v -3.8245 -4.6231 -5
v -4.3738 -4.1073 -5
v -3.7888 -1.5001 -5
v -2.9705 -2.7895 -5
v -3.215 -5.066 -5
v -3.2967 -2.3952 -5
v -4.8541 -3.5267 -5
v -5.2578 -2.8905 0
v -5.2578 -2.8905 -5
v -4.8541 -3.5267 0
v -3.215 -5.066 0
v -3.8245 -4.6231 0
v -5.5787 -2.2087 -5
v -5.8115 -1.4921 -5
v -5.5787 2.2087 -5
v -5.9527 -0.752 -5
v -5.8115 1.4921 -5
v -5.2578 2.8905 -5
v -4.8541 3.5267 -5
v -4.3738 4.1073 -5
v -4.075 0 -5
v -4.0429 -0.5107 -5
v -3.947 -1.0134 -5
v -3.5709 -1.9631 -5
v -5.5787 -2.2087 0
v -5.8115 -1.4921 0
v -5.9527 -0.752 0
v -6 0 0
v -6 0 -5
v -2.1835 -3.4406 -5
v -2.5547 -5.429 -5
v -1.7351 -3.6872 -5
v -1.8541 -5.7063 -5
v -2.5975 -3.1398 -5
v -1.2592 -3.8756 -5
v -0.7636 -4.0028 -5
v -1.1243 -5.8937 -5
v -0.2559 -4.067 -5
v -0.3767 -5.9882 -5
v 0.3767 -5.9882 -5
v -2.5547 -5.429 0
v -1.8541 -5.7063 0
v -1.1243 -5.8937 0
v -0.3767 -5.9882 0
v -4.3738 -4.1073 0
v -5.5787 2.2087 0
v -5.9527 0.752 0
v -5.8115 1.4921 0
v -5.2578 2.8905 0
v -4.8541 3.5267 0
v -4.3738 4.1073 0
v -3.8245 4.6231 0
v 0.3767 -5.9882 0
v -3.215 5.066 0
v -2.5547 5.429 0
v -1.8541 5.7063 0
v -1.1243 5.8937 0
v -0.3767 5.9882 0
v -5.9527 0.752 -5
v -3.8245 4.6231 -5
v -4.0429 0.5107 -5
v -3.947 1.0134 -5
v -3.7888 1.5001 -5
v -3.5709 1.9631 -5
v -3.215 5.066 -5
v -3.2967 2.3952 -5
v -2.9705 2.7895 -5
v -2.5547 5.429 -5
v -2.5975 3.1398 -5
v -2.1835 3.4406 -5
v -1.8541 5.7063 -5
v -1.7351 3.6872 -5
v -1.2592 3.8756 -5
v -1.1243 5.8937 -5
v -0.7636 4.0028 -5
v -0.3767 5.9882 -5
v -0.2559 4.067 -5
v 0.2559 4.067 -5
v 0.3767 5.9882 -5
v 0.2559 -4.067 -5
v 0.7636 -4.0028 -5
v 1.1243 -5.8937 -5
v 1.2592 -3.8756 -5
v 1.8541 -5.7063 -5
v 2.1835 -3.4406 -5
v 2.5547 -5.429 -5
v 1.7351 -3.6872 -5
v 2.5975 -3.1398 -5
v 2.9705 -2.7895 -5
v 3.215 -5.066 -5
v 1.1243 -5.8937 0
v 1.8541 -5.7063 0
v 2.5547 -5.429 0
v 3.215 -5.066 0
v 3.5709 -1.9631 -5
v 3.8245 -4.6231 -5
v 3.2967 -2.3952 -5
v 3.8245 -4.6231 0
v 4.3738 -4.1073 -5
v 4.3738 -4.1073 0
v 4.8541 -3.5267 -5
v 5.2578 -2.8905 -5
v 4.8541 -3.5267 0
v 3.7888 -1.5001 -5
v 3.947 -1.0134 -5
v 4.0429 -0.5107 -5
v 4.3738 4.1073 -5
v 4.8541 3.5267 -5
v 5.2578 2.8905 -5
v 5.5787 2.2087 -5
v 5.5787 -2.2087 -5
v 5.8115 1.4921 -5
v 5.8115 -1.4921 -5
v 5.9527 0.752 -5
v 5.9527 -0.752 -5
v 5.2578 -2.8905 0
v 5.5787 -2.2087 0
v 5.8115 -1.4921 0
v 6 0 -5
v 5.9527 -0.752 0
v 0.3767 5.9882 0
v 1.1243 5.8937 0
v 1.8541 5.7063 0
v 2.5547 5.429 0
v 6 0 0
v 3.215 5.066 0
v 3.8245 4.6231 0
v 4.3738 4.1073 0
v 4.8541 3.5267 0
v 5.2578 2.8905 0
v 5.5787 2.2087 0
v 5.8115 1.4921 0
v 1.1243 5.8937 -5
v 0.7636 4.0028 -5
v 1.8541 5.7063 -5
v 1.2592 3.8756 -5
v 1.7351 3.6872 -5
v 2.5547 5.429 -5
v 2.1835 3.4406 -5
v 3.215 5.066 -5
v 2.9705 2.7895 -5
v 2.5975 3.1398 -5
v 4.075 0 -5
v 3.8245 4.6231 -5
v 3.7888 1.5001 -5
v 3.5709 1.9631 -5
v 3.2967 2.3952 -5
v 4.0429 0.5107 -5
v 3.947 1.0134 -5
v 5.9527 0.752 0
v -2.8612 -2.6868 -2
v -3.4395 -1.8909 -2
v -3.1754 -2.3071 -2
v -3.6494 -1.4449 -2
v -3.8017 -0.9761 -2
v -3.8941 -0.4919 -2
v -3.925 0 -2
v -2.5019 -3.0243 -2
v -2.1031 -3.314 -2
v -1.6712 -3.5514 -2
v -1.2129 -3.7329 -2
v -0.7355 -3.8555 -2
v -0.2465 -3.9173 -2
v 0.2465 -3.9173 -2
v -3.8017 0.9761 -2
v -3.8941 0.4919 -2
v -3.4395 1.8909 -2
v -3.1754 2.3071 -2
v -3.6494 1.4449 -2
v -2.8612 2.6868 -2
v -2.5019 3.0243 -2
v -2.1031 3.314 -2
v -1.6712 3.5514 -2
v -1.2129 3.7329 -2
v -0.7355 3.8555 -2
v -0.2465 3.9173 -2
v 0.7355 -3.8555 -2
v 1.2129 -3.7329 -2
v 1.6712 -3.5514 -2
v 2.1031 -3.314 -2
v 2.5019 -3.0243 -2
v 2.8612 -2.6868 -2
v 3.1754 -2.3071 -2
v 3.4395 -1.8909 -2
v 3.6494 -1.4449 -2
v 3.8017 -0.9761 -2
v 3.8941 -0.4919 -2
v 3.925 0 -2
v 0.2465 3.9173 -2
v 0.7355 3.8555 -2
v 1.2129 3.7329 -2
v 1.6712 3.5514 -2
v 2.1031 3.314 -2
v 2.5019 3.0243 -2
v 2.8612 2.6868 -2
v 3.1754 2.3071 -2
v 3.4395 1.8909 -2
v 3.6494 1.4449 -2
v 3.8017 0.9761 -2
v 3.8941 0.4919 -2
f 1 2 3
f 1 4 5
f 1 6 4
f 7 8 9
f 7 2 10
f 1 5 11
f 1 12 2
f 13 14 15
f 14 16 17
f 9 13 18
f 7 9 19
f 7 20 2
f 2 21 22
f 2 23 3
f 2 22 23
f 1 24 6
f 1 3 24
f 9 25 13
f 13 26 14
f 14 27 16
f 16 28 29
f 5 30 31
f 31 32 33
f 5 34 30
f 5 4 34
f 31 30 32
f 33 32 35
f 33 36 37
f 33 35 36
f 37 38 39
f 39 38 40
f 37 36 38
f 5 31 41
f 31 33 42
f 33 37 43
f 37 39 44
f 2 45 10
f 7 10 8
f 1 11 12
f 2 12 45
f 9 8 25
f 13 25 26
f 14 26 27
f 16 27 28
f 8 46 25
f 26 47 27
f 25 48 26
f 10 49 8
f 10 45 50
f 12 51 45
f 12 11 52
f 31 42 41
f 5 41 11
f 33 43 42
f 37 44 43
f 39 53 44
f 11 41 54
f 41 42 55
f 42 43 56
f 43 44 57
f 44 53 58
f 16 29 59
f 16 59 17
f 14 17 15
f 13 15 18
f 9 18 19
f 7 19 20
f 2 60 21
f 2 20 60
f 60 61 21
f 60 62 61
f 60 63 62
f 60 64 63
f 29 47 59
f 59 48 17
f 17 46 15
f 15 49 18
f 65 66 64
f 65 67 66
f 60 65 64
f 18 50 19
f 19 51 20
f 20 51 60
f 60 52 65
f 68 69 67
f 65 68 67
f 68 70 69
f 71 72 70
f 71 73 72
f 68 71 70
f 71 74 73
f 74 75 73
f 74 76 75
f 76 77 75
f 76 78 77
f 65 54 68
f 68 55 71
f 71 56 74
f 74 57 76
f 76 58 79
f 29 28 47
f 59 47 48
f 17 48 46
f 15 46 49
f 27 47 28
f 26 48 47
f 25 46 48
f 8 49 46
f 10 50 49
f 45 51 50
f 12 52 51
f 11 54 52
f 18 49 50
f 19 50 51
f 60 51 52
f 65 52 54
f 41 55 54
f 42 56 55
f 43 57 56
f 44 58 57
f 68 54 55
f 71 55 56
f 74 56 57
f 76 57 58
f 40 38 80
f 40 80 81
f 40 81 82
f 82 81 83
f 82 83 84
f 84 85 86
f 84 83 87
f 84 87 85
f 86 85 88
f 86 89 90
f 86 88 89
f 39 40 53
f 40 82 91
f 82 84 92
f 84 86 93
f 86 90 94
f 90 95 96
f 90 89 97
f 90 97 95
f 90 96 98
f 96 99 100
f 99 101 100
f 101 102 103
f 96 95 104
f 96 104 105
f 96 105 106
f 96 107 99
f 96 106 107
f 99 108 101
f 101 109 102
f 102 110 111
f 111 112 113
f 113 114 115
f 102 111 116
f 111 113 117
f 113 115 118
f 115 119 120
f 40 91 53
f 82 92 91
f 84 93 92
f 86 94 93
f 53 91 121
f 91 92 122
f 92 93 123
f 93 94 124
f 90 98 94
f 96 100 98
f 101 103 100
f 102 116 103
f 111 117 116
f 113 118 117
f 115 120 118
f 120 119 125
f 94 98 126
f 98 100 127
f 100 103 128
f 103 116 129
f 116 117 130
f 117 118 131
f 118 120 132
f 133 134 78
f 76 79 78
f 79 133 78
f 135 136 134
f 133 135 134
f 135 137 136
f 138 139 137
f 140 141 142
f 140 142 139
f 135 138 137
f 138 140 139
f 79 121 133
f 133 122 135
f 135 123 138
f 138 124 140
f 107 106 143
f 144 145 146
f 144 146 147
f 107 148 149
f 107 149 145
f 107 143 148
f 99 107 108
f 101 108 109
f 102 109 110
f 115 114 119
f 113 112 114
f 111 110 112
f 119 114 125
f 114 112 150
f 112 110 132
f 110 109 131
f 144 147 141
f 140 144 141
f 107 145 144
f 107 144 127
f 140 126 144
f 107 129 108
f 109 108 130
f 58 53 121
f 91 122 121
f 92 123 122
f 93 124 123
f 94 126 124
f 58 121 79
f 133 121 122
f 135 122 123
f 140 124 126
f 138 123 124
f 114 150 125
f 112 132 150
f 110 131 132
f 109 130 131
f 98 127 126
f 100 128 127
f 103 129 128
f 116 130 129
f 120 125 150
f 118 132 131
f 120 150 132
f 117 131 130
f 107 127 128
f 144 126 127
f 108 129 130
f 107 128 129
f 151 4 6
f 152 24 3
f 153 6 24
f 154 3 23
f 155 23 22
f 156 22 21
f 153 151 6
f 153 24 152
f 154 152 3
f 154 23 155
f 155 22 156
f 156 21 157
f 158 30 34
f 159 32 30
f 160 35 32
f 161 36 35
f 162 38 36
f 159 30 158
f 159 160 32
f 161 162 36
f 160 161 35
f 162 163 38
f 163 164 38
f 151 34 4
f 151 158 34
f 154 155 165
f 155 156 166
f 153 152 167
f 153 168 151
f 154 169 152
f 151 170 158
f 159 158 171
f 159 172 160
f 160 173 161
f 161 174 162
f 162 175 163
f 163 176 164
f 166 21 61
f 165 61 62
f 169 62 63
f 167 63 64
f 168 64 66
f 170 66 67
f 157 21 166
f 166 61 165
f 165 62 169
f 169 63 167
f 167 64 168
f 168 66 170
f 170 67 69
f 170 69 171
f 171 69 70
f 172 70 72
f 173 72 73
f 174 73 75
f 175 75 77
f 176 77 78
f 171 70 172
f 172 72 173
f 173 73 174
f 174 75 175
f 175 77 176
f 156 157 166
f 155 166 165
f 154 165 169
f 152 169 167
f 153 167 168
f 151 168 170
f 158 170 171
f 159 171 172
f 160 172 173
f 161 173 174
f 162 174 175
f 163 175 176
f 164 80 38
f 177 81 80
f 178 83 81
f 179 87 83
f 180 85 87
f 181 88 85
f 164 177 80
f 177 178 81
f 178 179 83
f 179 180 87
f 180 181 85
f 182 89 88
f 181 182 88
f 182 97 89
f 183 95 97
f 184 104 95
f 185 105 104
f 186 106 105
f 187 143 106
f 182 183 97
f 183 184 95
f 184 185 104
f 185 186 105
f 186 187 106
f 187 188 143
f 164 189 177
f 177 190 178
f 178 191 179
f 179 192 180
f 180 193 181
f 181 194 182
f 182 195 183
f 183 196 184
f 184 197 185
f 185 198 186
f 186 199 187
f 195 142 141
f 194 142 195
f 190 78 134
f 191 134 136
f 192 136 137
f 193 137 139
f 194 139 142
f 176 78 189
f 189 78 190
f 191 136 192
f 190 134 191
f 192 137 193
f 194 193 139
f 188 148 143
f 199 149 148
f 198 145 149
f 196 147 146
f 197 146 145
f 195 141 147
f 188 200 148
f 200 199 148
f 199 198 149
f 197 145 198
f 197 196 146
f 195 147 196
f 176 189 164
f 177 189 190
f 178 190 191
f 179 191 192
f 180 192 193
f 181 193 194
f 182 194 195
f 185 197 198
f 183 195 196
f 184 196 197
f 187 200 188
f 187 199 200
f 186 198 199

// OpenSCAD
$fn = 50;

difference() {
	union() {
		translate(v = [0, 0, -5.0]) {
			cylinder(h = 5, r = 6.0);
		}
	}
	union() {
		#translate(v = [0, 0, -5.0]) {
			cylinder(h = 3, r1 = 4.075, r2 = 3.925);
		}
	}
}
